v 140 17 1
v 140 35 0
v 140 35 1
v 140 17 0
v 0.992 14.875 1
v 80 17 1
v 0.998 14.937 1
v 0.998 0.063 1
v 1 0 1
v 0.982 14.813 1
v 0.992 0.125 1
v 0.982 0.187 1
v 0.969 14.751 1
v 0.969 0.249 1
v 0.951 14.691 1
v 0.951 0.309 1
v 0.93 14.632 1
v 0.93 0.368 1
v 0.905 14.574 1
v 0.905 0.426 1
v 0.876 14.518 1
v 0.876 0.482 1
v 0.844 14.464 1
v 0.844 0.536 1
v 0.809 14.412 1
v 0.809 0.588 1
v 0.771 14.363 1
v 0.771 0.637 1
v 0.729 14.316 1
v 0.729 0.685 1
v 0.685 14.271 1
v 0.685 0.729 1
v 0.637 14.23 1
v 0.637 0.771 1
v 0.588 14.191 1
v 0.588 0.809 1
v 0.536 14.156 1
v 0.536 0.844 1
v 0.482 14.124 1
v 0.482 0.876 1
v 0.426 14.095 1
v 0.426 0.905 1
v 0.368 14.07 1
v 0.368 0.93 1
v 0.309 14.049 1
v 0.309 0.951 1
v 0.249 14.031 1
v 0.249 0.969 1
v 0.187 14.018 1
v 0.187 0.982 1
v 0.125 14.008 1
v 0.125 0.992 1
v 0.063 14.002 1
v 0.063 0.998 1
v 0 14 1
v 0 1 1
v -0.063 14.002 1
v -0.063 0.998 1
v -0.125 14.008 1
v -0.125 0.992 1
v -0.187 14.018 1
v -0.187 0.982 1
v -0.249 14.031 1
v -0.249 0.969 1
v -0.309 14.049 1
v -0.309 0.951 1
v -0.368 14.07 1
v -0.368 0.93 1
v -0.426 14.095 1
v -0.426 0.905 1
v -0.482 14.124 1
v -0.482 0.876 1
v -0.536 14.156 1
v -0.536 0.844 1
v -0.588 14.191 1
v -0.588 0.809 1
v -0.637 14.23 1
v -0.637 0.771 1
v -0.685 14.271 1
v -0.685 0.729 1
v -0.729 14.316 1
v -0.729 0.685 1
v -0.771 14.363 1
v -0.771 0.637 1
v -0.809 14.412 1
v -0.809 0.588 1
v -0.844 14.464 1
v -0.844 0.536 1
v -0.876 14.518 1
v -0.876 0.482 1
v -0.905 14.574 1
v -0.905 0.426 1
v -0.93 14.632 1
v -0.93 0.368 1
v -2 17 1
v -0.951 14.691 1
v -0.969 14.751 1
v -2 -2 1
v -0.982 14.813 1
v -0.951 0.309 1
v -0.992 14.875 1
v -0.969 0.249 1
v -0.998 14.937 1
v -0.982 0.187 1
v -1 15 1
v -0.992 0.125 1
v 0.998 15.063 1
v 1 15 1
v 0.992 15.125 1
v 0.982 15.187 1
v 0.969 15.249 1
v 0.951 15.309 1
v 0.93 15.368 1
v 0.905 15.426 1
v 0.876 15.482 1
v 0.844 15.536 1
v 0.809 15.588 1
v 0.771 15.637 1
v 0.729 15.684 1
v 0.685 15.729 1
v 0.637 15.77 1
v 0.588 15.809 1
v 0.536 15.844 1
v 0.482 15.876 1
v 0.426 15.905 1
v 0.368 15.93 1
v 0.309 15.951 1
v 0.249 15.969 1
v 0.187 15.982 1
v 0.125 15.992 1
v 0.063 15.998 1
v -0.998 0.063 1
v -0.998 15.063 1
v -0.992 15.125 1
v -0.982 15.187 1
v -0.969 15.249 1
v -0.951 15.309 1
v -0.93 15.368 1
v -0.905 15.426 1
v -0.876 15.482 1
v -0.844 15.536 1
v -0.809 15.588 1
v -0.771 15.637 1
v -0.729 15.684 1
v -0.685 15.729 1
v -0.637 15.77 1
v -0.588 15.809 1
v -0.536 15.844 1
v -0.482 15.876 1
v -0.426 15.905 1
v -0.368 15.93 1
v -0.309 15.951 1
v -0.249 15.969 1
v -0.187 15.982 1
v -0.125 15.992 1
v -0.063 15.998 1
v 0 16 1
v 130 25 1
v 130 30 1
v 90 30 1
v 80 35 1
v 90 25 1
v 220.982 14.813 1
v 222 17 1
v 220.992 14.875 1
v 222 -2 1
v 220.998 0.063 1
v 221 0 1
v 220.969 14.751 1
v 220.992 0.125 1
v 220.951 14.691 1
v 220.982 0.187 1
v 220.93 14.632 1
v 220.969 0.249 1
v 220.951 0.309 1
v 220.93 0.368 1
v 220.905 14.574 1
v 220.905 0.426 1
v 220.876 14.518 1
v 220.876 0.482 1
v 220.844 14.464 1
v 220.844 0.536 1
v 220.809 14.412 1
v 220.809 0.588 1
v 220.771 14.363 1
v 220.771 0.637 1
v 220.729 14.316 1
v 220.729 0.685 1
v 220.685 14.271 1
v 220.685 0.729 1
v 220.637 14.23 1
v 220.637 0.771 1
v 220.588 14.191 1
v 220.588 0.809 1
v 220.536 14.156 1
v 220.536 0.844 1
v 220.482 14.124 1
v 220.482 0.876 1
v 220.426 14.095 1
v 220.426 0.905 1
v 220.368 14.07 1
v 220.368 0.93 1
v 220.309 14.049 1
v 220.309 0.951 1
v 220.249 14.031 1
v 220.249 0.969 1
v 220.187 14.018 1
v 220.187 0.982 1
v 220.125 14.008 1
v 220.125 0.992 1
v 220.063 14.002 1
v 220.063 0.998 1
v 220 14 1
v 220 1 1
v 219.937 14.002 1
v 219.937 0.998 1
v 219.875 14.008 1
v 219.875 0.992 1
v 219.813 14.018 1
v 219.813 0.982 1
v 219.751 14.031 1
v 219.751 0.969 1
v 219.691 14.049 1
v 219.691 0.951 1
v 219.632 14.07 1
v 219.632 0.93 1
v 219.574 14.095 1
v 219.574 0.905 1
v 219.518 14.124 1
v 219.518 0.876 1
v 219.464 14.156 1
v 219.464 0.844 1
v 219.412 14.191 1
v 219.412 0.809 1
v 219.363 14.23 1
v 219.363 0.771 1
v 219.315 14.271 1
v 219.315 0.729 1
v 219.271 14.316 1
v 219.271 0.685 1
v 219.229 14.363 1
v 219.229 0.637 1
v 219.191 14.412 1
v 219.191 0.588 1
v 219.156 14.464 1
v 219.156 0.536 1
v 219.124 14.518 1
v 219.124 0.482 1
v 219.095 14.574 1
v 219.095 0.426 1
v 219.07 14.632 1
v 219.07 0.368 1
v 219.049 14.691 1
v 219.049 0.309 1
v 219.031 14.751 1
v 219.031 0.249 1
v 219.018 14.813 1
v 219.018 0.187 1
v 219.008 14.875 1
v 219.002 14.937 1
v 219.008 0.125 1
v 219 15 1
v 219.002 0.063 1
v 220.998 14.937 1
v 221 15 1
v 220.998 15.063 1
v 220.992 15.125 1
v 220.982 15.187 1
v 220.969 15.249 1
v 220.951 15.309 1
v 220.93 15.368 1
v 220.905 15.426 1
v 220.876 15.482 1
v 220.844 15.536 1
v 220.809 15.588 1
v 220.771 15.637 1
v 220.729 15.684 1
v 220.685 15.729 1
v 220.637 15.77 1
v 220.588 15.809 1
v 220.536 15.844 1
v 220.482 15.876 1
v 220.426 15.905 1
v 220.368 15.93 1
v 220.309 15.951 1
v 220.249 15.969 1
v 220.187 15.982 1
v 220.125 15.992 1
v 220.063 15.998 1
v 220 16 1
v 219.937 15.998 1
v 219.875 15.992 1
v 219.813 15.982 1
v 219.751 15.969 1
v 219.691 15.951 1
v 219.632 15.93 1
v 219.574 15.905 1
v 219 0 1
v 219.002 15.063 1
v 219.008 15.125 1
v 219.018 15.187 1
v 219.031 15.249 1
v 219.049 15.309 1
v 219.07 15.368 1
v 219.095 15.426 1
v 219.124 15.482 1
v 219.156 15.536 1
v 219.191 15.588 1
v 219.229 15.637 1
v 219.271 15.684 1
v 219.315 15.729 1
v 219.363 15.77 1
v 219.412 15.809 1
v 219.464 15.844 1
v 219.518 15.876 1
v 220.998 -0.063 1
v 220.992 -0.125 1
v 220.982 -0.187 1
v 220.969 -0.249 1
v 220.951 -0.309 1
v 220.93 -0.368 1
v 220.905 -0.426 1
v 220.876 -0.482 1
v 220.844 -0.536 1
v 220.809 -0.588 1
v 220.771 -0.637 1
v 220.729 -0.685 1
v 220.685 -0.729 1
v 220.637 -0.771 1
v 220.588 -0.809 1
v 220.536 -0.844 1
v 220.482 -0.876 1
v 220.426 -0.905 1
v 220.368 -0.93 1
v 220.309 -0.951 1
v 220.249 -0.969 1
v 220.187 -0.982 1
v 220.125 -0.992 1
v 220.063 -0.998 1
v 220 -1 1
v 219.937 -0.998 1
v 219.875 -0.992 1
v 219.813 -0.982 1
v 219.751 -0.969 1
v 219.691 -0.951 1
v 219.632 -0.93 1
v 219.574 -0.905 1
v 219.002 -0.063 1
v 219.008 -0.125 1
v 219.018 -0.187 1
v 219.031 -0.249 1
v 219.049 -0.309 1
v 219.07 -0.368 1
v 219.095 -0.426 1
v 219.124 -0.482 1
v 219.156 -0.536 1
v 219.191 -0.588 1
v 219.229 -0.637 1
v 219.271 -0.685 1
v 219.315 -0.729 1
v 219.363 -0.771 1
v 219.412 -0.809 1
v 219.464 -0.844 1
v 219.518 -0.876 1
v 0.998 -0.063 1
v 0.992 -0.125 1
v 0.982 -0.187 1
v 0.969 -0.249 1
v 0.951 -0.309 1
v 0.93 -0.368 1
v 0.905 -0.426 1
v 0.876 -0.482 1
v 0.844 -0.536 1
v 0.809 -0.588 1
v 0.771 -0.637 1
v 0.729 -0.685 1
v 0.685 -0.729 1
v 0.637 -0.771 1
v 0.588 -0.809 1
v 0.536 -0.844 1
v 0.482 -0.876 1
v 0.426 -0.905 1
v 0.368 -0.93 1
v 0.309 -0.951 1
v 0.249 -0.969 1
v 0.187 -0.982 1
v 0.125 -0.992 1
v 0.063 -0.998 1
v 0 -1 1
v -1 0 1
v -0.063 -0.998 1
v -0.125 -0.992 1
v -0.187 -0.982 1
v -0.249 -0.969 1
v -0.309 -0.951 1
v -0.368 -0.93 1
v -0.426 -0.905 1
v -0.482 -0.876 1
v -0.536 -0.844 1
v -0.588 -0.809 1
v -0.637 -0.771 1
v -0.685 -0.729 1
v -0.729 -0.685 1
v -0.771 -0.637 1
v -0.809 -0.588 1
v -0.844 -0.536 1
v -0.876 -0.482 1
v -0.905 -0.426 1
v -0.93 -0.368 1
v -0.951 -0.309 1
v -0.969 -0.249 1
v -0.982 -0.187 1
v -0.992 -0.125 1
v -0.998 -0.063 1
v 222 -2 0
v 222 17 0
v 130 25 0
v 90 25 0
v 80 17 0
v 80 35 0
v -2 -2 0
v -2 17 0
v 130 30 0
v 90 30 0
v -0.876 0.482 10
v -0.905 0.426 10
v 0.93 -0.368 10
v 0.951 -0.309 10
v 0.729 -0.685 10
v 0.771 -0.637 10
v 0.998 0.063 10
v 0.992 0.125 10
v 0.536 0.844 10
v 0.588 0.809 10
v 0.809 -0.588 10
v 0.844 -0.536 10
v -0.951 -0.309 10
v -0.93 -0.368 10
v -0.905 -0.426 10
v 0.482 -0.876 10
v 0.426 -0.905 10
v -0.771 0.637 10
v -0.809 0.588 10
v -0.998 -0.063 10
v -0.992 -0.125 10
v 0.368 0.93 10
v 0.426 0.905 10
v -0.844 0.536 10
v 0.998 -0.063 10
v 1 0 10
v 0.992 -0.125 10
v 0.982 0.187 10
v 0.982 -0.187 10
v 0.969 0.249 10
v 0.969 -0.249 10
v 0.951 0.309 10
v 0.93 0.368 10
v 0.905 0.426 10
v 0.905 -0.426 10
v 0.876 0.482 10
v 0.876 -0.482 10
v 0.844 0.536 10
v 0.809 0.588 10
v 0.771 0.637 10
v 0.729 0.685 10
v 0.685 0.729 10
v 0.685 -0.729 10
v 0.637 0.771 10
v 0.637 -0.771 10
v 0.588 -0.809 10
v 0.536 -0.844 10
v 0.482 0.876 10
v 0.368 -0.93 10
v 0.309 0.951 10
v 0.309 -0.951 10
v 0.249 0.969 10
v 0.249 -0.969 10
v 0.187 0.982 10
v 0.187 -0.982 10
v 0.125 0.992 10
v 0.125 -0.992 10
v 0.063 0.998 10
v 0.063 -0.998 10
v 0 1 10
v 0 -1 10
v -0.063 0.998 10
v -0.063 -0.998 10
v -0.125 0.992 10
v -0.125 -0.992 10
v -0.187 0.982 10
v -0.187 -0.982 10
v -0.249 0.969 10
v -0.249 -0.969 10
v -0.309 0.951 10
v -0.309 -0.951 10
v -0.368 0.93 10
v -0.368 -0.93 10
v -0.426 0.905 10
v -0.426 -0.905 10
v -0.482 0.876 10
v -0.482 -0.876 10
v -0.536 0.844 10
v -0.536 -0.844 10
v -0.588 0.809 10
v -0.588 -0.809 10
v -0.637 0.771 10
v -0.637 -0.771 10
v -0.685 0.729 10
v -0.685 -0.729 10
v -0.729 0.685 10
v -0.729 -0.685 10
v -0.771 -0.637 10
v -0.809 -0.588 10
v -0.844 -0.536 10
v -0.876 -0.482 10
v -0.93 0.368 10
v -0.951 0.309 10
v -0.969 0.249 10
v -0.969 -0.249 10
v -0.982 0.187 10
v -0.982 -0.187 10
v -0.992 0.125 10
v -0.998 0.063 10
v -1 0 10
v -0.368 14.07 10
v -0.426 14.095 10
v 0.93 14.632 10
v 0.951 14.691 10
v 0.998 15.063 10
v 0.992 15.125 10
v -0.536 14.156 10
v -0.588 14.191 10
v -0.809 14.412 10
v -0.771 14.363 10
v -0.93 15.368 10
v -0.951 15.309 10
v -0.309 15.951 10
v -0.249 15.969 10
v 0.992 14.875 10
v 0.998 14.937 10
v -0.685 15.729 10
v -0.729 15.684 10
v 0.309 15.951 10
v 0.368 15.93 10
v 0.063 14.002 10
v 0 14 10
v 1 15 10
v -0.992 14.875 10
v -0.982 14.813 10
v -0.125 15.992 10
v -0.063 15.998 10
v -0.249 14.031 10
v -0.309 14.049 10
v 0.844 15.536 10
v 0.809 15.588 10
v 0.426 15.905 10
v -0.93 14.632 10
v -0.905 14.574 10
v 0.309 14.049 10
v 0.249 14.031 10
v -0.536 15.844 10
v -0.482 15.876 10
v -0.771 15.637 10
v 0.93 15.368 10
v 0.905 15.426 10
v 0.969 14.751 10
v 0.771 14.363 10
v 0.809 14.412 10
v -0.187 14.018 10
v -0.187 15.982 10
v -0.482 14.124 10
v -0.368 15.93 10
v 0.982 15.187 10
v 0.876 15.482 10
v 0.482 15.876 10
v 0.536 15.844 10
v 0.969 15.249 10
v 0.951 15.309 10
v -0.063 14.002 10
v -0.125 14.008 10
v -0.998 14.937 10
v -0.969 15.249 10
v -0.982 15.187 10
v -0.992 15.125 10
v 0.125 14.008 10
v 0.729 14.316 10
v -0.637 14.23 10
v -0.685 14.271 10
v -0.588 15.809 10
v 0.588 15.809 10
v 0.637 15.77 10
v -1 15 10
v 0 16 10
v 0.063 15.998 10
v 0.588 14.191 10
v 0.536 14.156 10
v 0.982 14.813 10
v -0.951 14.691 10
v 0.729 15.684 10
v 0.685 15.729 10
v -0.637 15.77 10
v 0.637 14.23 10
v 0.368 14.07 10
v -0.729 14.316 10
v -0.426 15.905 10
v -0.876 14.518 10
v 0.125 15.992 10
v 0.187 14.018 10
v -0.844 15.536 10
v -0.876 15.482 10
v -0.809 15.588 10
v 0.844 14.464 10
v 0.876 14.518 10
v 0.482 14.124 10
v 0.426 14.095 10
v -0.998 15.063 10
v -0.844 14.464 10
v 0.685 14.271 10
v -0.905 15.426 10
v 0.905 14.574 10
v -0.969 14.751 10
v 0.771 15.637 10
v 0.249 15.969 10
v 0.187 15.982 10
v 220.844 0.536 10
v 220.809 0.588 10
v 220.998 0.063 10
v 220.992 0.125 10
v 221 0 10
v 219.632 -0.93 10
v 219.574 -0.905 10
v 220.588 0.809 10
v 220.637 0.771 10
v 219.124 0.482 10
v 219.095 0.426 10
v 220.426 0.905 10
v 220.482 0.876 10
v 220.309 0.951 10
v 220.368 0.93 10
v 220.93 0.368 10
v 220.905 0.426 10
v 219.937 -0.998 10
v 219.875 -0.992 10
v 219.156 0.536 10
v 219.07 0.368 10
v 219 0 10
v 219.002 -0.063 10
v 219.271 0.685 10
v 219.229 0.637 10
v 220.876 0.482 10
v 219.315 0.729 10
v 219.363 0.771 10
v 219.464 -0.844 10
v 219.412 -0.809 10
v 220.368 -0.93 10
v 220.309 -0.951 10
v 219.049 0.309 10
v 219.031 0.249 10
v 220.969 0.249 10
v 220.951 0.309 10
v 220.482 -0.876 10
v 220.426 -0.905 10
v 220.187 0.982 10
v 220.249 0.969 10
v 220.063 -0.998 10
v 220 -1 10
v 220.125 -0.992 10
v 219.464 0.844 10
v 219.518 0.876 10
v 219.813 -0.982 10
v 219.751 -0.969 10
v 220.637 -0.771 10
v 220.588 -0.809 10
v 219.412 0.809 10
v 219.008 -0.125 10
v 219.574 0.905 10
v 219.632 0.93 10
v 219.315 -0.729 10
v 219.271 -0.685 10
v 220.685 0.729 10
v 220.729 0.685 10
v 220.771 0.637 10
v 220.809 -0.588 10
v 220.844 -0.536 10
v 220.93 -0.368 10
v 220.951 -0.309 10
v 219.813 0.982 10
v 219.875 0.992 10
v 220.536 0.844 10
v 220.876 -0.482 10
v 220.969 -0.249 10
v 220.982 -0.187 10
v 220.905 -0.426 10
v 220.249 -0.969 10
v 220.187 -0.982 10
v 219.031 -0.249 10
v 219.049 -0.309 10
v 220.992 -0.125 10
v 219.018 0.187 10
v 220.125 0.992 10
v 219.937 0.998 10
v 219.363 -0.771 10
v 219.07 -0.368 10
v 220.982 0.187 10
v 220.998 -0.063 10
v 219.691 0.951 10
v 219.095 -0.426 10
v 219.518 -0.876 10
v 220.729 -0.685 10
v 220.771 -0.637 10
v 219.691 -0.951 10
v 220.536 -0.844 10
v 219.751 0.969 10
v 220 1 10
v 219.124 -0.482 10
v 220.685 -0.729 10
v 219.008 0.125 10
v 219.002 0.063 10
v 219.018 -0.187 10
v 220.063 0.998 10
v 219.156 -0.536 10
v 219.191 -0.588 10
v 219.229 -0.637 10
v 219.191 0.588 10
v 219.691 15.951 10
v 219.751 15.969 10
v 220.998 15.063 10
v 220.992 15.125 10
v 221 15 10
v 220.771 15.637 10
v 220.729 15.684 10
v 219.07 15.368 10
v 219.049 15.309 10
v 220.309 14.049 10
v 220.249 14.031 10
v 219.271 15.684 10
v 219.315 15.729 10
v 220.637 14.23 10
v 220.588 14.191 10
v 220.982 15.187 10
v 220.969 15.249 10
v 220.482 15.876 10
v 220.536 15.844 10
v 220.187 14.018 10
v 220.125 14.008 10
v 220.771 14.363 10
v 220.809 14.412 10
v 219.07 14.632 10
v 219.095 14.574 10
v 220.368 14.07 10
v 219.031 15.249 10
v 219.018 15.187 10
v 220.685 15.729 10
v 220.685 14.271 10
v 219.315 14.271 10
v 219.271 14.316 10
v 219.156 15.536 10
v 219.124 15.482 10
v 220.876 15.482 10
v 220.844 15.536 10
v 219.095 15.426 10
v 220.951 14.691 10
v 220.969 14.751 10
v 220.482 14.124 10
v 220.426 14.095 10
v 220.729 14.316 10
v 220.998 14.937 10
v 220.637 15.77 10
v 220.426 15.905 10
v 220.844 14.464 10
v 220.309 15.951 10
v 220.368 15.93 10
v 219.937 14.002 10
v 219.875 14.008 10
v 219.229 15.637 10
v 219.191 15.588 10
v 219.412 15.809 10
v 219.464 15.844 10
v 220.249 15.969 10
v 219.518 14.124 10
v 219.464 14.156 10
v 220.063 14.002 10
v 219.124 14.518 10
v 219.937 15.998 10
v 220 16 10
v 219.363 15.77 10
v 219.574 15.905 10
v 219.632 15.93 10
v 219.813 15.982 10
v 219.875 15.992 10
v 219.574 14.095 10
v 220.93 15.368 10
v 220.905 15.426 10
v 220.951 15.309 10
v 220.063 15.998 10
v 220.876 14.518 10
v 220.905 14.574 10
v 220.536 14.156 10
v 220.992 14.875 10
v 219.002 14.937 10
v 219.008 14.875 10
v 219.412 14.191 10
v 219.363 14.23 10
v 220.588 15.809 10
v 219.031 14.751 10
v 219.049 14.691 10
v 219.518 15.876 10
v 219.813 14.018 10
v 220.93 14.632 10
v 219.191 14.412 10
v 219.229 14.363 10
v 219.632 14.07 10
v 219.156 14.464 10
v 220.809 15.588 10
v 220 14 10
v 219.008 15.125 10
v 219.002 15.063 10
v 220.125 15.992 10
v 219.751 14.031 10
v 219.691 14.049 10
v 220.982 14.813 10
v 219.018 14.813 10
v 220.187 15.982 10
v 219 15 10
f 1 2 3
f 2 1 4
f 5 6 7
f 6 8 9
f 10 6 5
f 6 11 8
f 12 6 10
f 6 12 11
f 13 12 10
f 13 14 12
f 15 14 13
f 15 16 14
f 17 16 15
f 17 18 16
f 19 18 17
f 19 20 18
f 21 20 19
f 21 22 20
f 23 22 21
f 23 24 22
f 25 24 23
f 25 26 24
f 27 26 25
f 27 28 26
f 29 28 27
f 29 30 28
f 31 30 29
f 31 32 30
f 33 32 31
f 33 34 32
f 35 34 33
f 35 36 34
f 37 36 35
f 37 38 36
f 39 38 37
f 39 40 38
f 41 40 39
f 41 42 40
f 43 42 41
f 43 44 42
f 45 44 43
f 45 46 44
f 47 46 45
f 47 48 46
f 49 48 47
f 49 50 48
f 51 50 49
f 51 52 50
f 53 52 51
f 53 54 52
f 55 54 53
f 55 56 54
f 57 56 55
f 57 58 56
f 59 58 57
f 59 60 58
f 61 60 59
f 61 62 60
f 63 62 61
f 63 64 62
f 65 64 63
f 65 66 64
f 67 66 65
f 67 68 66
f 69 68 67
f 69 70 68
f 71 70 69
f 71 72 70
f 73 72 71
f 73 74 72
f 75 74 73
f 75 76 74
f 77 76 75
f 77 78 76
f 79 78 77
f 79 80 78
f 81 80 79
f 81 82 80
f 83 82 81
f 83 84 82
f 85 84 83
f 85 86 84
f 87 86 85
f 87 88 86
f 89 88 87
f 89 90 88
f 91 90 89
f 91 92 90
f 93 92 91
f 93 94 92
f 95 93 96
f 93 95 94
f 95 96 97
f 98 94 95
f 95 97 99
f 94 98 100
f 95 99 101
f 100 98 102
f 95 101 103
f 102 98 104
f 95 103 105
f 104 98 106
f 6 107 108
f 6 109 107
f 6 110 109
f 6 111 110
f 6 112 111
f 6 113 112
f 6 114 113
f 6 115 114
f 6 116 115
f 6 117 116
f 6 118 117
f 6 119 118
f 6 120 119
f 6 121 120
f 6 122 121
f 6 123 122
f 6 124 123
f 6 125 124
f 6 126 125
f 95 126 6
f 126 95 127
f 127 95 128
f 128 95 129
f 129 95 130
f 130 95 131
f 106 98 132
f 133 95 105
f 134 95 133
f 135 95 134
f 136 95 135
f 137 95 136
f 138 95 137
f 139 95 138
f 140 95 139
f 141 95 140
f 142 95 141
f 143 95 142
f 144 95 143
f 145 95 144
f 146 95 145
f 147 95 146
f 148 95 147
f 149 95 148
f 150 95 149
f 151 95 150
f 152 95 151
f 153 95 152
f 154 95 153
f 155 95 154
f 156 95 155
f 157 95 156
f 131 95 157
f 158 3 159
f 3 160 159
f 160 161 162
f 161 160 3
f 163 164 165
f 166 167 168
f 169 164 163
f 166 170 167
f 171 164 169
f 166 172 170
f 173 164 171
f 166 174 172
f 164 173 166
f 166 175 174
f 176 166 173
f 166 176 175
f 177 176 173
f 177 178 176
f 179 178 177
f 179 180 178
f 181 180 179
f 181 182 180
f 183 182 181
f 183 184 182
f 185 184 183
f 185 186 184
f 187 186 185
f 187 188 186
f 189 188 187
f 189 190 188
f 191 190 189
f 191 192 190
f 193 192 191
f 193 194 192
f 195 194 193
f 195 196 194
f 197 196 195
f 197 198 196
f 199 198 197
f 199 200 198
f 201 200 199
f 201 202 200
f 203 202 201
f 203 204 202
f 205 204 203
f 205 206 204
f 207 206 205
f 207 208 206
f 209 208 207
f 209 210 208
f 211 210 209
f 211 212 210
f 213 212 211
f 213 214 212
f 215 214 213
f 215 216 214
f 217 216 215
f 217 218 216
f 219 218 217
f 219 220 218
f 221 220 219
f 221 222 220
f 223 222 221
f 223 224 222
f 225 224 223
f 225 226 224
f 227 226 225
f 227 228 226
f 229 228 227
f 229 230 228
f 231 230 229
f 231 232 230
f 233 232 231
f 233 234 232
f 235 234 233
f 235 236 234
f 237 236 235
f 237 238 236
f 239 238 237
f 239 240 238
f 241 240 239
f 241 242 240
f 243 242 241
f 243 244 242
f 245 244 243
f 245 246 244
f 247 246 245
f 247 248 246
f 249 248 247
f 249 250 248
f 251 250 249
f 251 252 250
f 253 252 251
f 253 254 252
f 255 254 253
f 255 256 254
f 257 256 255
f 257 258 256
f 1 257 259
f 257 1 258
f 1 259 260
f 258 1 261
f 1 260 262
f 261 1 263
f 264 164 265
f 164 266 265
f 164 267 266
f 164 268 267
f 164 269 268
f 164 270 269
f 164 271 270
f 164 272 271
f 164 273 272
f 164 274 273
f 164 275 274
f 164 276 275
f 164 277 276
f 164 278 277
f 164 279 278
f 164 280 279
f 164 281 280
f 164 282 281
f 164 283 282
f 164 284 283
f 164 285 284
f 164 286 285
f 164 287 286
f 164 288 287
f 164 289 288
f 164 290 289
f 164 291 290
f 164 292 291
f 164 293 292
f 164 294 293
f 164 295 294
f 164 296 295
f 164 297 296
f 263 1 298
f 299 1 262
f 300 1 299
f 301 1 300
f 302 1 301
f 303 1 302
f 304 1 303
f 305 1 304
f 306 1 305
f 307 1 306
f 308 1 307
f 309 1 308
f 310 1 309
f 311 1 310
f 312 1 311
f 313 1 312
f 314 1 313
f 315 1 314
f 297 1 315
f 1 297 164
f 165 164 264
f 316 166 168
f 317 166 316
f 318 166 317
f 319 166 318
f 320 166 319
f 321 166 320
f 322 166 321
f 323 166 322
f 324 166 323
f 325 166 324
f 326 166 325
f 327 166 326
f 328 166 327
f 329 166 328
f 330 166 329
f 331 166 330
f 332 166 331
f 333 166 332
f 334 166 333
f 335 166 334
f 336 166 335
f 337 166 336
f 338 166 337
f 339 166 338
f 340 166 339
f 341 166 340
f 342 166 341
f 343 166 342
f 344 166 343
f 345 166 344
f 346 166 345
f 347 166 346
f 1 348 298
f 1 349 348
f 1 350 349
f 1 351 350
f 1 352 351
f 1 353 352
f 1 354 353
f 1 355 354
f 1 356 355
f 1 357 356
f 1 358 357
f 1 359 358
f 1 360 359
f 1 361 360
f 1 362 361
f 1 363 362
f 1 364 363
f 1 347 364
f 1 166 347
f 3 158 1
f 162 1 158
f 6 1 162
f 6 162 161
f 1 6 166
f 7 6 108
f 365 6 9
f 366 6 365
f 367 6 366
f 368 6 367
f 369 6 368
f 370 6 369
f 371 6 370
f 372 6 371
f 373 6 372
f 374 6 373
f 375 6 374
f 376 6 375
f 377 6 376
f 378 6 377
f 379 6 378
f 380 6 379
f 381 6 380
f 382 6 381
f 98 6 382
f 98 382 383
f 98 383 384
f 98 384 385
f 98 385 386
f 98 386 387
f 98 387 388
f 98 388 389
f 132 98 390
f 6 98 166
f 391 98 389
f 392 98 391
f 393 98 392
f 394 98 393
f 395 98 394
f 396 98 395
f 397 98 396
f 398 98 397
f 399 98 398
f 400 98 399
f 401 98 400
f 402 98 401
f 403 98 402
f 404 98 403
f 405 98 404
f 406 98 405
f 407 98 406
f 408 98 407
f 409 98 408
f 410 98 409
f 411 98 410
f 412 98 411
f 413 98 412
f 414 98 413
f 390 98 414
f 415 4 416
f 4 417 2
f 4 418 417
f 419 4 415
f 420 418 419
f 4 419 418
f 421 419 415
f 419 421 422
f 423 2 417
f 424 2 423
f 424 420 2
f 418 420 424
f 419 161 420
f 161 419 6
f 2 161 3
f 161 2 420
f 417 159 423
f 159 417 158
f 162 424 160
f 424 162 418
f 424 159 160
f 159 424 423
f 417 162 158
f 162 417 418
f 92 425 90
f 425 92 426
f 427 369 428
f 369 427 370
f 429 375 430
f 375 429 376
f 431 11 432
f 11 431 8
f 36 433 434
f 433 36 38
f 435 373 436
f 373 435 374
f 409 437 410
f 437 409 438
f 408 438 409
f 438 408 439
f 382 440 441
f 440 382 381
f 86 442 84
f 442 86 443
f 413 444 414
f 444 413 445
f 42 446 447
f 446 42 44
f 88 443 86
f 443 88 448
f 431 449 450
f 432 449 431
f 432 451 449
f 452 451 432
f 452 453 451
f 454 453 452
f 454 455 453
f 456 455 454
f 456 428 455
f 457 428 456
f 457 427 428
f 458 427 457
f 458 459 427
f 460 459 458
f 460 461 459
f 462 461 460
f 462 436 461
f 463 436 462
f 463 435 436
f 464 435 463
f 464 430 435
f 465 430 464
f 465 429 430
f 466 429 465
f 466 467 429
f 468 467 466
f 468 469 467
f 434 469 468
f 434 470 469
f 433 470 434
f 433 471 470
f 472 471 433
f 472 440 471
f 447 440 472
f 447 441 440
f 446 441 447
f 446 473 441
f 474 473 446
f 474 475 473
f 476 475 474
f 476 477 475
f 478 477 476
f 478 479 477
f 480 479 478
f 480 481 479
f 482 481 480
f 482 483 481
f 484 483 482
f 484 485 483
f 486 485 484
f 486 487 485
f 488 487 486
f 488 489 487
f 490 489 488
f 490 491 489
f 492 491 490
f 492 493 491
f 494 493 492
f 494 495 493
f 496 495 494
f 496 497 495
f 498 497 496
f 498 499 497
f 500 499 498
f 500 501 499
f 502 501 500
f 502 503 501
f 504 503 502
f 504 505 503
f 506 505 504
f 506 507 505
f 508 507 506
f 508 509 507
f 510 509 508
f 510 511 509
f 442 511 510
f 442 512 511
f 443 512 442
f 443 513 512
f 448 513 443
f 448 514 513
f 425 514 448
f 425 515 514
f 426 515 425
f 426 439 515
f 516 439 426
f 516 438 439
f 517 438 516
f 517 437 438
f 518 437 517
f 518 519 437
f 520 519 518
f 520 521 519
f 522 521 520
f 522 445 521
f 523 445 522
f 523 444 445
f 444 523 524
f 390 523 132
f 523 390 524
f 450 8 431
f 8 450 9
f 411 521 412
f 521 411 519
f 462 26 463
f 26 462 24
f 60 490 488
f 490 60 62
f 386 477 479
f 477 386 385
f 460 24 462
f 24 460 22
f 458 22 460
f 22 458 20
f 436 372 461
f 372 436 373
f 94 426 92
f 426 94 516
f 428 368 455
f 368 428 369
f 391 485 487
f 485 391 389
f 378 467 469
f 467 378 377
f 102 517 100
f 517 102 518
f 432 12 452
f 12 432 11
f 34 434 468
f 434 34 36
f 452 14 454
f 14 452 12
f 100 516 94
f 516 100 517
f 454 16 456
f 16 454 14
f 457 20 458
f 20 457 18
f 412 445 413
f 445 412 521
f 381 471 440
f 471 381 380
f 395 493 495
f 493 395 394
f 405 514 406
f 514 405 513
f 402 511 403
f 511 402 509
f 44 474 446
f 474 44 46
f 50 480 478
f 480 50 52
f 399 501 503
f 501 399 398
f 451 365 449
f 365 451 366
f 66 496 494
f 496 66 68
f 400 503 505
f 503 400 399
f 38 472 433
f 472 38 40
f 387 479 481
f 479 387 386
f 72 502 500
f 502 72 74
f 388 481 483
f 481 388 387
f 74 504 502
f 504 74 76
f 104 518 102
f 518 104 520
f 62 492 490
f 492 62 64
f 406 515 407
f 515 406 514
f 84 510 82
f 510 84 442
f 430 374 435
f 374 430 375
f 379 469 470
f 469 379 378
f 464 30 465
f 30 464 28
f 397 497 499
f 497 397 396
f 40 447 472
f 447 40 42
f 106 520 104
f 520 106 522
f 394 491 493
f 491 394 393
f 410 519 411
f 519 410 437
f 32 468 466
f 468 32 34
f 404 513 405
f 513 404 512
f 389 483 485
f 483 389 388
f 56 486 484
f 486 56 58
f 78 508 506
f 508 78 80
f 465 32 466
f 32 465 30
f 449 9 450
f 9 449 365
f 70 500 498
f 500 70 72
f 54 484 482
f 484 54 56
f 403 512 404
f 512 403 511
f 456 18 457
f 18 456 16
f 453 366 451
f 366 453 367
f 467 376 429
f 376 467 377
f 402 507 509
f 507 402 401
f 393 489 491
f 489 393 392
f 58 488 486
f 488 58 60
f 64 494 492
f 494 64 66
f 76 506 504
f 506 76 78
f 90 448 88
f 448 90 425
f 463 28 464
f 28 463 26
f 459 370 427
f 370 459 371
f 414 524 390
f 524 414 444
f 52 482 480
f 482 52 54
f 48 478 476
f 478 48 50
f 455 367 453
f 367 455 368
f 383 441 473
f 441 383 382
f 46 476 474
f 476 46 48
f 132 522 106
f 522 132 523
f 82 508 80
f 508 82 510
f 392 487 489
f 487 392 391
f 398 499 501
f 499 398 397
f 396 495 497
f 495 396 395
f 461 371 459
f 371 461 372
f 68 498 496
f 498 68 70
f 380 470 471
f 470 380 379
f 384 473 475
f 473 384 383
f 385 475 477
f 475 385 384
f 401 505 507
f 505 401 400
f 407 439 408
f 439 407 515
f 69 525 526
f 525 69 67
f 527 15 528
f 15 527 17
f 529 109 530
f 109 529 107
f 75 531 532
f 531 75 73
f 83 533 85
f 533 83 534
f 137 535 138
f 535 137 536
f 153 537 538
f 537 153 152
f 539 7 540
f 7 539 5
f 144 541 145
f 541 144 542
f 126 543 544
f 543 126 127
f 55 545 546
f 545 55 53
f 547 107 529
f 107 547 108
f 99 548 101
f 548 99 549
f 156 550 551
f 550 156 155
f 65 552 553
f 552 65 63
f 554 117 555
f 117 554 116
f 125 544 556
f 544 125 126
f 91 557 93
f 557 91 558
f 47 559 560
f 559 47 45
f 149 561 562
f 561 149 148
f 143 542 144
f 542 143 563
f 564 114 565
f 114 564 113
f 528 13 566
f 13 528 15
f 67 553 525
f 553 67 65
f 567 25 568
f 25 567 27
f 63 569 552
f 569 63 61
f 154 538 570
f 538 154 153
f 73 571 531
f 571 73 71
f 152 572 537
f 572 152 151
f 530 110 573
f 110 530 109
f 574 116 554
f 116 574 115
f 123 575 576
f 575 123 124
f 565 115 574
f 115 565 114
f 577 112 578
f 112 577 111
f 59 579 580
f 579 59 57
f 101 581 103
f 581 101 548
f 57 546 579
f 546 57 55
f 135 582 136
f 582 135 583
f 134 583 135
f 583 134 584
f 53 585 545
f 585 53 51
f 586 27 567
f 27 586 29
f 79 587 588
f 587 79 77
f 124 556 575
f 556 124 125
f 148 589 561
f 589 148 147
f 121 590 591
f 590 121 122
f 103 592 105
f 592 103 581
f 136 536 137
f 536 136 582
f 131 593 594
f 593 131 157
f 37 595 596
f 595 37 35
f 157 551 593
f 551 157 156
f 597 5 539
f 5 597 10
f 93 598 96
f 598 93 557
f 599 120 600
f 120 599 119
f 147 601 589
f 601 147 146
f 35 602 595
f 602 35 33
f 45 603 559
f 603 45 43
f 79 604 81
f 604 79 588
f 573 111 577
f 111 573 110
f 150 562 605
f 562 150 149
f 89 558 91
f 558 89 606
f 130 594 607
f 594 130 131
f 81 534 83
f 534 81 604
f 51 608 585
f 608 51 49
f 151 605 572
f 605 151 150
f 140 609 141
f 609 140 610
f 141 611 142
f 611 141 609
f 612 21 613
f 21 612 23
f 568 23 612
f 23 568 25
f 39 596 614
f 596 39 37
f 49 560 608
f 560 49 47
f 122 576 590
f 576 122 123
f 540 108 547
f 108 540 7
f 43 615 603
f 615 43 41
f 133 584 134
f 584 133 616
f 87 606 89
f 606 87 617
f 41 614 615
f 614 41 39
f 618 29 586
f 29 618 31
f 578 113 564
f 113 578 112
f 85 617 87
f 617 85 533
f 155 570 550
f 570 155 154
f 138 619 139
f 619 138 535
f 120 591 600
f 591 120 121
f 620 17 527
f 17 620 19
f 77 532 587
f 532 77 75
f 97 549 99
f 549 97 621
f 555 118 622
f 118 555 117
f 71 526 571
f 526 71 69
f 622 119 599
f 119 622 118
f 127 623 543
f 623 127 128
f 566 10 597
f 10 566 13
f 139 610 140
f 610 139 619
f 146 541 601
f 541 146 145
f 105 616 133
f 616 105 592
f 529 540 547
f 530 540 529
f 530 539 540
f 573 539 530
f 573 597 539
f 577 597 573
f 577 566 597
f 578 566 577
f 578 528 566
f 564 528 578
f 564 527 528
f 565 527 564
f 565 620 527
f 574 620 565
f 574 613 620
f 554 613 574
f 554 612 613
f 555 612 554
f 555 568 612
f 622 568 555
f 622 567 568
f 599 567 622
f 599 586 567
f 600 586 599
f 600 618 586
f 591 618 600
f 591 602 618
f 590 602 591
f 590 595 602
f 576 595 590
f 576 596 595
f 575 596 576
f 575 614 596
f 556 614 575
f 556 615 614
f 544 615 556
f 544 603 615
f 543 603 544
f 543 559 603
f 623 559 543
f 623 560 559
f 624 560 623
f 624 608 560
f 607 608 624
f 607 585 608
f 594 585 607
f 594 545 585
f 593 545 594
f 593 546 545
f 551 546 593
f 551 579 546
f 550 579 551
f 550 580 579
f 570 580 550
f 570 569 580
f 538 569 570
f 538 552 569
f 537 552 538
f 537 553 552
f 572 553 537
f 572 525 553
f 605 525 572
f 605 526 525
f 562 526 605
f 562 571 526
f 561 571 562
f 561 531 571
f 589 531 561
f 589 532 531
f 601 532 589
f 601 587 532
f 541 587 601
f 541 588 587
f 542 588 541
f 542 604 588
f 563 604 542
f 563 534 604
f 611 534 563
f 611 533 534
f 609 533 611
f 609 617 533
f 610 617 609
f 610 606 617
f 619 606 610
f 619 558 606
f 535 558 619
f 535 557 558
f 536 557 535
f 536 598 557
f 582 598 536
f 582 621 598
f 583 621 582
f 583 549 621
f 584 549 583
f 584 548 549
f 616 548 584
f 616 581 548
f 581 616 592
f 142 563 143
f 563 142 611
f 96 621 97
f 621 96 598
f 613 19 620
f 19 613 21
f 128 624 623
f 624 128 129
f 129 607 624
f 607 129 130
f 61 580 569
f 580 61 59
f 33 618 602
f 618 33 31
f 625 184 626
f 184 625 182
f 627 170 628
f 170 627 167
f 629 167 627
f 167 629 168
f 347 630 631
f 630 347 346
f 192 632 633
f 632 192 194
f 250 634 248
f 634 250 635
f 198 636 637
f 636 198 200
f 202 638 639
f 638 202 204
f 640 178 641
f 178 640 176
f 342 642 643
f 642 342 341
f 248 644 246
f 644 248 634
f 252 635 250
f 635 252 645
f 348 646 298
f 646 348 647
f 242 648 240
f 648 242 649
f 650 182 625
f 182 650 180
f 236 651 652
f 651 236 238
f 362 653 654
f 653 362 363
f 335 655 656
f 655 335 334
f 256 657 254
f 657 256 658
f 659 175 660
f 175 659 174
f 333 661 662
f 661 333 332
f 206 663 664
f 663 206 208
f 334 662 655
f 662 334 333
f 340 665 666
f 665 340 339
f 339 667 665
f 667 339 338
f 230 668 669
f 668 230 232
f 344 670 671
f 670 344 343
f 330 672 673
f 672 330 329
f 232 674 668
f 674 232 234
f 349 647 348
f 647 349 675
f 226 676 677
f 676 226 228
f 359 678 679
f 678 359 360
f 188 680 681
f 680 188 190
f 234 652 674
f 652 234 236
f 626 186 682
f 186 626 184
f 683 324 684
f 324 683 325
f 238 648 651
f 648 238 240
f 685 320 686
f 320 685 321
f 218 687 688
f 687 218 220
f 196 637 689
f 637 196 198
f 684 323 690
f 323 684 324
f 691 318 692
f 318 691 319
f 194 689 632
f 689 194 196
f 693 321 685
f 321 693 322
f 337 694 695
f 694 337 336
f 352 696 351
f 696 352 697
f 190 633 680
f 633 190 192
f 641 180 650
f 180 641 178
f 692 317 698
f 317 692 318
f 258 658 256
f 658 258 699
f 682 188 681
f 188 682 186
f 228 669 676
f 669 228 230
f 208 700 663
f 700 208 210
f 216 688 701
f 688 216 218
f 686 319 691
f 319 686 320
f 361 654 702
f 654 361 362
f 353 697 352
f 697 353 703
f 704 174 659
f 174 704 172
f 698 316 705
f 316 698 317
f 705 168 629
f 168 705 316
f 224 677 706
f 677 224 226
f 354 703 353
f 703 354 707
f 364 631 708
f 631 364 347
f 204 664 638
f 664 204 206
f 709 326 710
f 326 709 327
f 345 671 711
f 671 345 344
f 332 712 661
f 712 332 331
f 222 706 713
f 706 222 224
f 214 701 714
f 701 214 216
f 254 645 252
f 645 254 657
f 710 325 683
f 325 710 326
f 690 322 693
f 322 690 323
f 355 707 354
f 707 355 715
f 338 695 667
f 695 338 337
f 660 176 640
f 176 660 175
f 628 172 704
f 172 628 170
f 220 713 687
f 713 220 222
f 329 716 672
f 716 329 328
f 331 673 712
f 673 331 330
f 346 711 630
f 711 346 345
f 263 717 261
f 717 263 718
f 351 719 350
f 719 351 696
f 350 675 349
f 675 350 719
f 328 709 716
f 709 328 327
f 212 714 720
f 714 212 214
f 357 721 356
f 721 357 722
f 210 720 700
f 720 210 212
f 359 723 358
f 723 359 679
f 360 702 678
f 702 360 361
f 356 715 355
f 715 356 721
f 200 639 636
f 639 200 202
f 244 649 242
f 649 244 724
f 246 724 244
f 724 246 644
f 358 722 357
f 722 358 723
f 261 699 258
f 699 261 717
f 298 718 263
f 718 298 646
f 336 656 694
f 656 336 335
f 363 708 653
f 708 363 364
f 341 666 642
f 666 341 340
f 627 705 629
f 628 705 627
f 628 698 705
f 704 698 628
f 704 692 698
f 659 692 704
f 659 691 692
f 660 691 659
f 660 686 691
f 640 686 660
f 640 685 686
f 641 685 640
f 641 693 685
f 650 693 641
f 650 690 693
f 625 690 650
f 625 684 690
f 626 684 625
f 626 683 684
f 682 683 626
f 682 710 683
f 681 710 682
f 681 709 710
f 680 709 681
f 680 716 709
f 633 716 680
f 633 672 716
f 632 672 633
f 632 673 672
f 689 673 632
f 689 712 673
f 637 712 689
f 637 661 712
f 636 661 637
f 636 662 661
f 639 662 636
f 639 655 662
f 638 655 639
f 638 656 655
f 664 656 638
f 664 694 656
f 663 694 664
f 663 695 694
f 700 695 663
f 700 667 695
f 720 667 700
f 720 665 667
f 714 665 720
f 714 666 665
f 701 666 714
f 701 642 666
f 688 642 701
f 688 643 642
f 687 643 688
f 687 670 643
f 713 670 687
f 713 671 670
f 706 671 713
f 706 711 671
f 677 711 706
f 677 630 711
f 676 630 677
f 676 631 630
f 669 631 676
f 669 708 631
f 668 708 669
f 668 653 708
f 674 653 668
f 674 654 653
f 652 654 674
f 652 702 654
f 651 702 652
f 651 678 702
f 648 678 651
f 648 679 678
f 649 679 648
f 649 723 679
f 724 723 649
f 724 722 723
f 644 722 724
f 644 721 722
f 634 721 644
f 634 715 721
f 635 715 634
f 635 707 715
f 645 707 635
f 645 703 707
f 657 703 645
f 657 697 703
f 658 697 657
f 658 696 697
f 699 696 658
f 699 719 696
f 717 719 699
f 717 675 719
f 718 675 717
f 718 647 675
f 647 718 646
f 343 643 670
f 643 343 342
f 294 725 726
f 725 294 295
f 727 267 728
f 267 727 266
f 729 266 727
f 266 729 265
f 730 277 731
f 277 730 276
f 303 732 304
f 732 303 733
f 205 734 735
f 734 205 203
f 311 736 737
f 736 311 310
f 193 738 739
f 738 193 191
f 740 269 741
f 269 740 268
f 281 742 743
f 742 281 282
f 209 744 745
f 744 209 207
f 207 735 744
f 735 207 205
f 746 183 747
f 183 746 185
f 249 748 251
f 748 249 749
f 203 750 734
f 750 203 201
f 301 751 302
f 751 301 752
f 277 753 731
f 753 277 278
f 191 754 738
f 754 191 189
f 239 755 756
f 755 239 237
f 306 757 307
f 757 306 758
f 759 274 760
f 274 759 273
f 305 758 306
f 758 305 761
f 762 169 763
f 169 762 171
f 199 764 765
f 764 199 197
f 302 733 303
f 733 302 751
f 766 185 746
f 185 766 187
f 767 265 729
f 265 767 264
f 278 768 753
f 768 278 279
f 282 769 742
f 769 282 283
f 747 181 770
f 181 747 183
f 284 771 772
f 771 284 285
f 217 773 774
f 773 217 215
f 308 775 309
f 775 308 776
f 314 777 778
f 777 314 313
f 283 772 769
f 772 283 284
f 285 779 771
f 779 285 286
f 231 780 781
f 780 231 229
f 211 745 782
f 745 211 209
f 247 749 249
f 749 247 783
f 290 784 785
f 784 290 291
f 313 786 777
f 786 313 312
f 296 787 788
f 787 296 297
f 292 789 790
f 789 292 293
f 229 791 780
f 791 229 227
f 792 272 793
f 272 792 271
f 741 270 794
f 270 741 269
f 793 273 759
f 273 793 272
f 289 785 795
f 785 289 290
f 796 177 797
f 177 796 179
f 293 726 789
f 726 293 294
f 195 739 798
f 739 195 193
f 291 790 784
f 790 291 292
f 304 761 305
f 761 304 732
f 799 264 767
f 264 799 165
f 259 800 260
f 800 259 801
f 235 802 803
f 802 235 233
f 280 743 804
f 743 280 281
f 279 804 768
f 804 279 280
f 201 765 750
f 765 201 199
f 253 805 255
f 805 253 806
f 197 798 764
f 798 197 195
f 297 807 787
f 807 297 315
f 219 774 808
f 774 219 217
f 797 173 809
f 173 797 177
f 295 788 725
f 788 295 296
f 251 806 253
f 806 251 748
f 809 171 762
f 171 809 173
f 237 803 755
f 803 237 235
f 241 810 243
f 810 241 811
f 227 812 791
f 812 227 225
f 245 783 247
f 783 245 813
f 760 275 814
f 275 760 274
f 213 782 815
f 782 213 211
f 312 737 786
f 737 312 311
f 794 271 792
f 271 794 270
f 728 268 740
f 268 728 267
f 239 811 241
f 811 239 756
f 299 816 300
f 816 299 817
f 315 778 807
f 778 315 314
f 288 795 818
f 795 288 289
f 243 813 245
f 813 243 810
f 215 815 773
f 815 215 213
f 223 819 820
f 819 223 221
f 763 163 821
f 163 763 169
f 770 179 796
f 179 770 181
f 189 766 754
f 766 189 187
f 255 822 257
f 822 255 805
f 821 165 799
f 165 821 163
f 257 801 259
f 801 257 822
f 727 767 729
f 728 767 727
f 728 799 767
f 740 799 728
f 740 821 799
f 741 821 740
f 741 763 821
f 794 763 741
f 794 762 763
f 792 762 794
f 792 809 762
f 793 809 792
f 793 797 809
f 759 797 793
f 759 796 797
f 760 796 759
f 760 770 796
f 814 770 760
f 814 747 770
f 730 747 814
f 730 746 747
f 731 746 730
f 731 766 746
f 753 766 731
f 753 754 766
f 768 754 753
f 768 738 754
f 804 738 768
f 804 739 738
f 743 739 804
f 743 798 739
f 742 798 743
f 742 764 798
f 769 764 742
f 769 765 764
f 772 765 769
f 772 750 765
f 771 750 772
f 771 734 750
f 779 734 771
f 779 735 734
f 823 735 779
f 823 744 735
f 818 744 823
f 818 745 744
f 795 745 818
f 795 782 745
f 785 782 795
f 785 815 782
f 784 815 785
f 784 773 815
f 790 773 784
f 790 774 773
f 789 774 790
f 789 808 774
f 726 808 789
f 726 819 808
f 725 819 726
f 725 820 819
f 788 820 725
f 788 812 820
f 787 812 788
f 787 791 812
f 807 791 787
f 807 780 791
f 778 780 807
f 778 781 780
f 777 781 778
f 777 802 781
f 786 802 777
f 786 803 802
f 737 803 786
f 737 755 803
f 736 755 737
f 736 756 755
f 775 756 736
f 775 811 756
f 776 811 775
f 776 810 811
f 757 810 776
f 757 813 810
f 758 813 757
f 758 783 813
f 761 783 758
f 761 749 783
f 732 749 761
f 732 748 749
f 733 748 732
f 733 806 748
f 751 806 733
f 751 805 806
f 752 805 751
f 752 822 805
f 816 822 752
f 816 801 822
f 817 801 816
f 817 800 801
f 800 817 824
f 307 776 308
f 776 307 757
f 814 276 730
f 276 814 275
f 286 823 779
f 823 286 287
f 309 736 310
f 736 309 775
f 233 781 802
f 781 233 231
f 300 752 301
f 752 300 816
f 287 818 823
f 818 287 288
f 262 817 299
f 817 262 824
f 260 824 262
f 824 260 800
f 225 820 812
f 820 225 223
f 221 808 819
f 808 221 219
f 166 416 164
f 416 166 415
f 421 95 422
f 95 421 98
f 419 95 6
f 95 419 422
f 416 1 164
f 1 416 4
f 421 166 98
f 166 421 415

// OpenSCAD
$fn=100;
width=220;
height=15;
thickness=1;
pinOff=2;
pinH=10;
pinD=2;
clipW=40;
clipWout=60;
clipH=5;
clipHout=20;

module pin() {
    cylinder(h=pinH,d=pinD);
}

translate([0,0,0]) pin();
translate([0,height,0]) pin();
translate([width,0,0]) pin();
translate([width,height,0]) pin();
translate([-pinOff,-pinOff,0]) cube([width+2*pinOff,height+2*pinOff,thickness]);

difference(){
    translate([width/2-clipWout/2,height,0]) cube([clipWout,clipHout,thickness]);
    translate([width/2-clipW/2,clipHout+clipH,-.1]) cube([clipW,clipH,thickness+.2]);
}
